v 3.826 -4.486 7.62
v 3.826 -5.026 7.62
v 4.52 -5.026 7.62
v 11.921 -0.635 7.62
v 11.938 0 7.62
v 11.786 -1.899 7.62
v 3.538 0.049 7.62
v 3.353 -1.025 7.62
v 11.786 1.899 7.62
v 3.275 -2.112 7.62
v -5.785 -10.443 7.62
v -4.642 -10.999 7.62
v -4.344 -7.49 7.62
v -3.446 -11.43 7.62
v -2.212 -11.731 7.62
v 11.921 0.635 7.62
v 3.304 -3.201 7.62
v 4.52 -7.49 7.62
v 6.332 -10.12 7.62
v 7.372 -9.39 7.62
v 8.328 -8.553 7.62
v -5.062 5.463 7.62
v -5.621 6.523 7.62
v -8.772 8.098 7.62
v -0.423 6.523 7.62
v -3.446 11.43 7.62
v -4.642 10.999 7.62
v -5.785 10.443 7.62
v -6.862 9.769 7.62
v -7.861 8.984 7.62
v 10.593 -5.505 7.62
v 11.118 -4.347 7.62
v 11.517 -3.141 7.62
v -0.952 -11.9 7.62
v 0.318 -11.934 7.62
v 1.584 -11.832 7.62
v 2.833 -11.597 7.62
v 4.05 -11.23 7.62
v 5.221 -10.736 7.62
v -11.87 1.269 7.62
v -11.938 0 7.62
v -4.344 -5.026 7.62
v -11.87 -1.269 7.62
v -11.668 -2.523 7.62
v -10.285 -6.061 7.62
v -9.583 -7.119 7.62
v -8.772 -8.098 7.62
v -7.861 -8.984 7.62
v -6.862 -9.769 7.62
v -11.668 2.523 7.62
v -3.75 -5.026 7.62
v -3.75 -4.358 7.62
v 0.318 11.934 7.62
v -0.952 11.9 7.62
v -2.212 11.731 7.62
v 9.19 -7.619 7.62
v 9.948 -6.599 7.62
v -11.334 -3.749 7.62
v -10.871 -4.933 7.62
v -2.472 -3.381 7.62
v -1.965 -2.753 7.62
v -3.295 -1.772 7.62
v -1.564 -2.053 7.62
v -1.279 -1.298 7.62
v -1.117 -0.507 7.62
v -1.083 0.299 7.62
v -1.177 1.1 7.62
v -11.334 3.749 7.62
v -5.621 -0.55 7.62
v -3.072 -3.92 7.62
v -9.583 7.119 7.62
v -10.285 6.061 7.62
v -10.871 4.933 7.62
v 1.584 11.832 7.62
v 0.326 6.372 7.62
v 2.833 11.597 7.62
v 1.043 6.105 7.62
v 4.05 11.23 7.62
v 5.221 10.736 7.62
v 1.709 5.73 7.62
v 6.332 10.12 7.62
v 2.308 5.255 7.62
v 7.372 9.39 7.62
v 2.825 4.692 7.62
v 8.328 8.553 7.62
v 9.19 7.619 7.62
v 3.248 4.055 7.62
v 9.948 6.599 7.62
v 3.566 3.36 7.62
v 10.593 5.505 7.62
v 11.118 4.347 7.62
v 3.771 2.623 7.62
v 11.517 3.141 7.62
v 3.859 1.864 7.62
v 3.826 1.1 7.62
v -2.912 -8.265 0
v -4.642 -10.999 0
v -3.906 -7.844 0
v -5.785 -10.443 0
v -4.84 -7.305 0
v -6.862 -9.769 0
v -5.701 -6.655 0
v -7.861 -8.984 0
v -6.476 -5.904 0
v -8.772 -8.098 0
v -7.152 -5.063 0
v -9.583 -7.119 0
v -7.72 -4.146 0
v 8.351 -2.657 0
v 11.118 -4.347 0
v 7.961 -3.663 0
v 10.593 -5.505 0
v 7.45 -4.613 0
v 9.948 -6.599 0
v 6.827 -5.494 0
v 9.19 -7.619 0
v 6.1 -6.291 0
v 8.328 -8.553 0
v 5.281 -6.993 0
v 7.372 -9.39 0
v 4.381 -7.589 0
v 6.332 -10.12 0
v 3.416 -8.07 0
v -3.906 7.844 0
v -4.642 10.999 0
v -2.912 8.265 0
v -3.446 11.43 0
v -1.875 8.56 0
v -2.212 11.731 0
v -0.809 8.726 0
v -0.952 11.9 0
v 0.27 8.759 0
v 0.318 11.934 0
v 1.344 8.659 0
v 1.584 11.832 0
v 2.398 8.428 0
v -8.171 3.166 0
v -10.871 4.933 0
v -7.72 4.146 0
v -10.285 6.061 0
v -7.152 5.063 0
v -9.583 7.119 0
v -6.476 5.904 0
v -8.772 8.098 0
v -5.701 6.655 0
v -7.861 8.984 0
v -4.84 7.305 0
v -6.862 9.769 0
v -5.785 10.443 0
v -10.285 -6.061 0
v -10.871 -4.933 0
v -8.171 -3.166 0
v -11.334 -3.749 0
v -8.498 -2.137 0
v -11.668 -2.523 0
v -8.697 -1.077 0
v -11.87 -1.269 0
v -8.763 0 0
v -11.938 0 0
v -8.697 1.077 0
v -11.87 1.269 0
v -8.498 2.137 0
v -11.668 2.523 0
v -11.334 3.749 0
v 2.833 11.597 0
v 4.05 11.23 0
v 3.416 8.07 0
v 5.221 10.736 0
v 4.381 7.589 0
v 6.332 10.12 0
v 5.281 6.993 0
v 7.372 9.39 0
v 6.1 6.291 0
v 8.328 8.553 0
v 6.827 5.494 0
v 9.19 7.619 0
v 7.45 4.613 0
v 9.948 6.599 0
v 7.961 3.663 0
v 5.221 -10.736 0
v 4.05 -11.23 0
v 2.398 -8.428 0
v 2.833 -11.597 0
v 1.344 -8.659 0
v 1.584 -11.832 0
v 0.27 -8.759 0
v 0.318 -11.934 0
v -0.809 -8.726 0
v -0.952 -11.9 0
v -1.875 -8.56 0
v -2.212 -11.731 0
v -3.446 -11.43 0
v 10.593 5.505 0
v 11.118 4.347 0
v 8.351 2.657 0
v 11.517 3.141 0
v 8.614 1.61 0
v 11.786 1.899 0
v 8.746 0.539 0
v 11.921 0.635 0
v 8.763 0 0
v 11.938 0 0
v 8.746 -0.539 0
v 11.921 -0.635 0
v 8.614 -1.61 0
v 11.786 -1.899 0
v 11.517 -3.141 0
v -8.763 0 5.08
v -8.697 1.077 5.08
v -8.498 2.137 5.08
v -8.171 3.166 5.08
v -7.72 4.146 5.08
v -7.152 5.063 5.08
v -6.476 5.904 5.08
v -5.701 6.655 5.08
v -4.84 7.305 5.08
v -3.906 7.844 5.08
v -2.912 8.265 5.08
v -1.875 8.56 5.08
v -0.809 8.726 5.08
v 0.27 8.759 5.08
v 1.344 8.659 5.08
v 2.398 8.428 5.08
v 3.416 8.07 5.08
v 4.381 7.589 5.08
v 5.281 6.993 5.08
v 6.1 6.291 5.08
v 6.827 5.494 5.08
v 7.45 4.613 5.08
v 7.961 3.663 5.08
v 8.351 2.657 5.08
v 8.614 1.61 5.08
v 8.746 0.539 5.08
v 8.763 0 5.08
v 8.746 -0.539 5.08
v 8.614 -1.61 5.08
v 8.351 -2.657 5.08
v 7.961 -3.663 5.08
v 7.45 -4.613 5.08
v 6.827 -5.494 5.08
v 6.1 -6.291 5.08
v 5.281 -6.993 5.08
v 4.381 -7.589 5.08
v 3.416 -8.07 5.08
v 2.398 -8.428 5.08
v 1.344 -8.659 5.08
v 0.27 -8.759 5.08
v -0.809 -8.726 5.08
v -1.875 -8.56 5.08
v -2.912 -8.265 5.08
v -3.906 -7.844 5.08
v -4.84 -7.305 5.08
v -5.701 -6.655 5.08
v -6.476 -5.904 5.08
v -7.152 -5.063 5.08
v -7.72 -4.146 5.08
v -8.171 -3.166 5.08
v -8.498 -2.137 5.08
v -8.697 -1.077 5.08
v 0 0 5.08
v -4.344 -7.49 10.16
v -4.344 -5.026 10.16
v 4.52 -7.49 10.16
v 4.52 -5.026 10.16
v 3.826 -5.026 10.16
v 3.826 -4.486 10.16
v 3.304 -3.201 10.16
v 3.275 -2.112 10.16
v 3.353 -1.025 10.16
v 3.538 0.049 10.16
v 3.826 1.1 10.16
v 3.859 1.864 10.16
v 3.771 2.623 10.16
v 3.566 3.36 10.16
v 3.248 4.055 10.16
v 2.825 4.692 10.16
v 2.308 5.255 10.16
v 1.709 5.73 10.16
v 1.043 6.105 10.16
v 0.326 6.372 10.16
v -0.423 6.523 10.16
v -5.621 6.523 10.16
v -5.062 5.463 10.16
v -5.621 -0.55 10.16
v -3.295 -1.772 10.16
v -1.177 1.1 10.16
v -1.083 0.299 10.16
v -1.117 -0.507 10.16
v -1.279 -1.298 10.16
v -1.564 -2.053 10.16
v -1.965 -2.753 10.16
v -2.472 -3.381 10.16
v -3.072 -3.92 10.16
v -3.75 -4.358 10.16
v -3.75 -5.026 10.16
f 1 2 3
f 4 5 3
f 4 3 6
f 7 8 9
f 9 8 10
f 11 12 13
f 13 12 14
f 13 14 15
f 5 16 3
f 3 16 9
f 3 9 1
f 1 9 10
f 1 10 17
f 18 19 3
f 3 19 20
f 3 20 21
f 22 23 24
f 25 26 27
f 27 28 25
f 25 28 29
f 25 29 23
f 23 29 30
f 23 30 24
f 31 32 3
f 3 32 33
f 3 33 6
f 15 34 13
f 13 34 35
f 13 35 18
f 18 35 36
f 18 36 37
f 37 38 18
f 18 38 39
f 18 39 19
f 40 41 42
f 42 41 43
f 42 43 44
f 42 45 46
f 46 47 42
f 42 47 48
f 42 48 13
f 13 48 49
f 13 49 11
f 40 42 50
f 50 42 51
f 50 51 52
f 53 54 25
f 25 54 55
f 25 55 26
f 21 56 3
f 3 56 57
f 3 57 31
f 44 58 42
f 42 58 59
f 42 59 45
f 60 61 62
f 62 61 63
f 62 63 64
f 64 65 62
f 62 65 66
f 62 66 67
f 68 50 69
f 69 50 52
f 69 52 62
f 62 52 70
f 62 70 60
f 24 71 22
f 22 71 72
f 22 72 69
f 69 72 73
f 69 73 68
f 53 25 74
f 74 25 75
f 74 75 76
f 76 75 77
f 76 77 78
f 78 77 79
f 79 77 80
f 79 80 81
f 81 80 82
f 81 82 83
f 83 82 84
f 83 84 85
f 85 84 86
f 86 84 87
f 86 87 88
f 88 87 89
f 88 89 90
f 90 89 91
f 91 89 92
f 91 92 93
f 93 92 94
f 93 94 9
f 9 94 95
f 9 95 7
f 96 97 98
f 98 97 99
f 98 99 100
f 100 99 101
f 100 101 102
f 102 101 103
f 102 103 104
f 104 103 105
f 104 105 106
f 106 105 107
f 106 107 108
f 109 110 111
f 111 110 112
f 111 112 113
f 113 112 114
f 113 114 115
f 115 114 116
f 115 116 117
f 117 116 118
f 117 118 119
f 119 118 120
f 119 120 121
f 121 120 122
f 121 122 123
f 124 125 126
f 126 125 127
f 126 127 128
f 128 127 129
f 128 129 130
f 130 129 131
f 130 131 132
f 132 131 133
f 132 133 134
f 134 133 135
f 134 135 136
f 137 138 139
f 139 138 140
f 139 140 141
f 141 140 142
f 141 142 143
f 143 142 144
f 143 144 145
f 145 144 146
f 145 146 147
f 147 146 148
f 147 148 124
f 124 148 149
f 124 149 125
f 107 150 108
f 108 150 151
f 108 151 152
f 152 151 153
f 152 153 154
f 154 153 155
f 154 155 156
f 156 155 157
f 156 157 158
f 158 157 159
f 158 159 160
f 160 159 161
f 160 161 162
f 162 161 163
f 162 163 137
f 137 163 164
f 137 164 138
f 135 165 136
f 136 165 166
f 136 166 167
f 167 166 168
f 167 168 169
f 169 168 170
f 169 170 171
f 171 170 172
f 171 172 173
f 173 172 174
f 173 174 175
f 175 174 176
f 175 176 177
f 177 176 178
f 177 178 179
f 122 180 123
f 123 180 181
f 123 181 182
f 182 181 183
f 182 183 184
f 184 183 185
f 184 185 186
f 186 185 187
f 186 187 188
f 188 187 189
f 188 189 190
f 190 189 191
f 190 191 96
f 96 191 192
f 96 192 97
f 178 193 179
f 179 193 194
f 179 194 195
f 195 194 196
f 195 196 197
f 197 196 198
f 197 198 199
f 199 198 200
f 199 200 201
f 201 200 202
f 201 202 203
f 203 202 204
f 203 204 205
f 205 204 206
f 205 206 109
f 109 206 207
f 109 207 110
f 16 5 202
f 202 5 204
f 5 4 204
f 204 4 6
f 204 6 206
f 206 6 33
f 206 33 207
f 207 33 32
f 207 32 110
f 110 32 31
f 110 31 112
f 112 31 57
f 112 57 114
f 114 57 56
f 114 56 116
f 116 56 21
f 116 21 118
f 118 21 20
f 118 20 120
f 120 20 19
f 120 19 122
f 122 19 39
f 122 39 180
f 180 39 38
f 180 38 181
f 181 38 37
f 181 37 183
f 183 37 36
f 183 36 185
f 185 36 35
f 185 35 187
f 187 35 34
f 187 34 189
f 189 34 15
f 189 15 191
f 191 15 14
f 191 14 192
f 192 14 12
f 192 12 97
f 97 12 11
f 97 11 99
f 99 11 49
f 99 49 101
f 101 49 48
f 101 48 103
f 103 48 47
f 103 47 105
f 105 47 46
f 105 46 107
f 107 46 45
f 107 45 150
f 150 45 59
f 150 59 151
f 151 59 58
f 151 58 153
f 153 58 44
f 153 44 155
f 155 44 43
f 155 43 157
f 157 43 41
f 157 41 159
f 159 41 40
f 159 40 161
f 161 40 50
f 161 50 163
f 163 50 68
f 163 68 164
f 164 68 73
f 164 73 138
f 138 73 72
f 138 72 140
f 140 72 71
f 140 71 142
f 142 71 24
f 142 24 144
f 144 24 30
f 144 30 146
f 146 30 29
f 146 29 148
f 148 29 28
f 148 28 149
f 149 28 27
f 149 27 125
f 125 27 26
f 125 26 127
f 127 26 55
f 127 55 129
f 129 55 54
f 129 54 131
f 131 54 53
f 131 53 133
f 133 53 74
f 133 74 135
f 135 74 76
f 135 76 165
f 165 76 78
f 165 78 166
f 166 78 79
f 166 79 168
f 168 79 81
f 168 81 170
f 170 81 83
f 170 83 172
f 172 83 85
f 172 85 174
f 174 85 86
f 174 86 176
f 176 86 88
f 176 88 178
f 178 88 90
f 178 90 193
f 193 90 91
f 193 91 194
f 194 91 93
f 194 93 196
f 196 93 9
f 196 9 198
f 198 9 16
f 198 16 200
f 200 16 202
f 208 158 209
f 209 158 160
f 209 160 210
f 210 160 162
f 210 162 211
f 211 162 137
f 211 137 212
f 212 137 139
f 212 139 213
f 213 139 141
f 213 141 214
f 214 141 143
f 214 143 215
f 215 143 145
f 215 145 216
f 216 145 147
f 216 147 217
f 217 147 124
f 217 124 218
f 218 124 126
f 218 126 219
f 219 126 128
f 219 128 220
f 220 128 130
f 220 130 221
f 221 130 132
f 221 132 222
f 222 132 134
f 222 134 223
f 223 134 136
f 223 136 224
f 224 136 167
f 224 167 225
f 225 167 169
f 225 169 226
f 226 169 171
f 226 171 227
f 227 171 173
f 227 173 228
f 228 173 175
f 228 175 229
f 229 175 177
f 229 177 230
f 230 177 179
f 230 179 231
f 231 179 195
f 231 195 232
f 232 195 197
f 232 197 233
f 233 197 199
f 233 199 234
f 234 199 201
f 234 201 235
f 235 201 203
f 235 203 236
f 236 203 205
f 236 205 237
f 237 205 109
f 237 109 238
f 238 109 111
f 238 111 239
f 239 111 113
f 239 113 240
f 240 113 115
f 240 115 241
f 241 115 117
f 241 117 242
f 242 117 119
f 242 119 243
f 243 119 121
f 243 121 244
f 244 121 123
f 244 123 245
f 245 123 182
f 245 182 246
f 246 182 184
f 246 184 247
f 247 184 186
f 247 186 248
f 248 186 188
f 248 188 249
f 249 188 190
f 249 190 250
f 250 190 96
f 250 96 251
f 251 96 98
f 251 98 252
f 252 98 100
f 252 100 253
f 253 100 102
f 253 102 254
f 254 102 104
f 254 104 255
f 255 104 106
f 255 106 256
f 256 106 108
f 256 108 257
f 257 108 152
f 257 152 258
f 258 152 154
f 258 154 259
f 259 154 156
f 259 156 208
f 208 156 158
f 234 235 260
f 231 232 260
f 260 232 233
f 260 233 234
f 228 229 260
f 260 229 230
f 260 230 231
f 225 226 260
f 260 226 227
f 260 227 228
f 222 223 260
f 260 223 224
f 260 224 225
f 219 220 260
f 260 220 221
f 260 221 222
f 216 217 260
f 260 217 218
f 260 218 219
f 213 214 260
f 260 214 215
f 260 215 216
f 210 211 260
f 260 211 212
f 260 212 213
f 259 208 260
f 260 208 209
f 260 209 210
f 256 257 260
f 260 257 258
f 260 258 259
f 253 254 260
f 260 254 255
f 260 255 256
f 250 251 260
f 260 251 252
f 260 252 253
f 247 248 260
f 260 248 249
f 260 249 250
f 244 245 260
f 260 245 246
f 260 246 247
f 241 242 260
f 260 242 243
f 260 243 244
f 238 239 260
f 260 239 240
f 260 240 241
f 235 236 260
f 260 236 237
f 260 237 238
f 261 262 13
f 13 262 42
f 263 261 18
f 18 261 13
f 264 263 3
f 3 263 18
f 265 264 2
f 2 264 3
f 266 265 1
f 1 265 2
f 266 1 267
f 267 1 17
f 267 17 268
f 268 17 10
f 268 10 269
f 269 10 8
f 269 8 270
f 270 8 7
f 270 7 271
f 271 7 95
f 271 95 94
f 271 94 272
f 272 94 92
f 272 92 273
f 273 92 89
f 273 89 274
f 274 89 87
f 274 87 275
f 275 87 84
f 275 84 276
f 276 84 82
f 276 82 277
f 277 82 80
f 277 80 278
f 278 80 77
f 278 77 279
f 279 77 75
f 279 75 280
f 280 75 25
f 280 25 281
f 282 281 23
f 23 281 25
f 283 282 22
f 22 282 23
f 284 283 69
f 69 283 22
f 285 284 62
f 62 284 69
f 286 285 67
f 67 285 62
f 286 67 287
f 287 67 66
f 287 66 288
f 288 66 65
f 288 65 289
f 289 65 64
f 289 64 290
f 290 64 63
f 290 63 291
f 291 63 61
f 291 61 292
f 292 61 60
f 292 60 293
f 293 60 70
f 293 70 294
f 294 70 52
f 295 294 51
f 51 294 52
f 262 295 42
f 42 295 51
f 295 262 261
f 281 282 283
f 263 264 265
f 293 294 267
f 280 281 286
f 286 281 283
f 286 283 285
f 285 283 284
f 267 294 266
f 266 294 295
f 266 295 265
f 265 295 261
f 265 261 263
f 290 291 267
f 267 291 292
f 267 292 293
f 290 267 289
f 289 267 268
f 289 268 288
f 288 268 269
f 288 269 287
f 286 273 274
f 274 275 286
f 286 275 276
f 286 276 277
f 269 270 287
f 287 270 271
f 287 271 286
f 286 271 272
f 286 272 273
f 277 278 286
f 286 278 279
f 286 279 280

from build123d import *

# Parameters (mm, degrees)
SKETCH1_R           = 11.938
SKETCH1_R_2         = 8.763
BOSS_EXTRUDE1_DEPTH = 5.08
SKETCH2_R           = 11.938
BOSS_EXTRUDE2_DEPTH = 2.54
BOSS_EXTRUDE5_DEPTH = 2.54


with BuildPart() as part:
    # Sketch1 → Boss-Extrude1 (new body)
    with BuildSketch(Plane.XY):
        Circle(SKETCH1_R)
        Circle(SKETCH1_R_2, mode=Mode.SUBTRACT)
    extrude(amount=BOSS_EXTRUDE1_DEPTH)

    # Sketch2 → Boss-Extrude2 (add)
    with BuildSketch(Plane.XY.offset(5.08)):
        Circle(SKETCH2_R)
    extrude(amount=BOSS_EXTRUDE2_DEPTH)

    # Sketch3 → Boss-Extrude5 (add)
    with BuildSketch(Plane.XY.offset(7.62)):
        with BuildLine():
            Line((-3.749775554, -5.025912703), (-3.749775554, -4.357730643))
            ThreePointArc((-3.749775554, -4.357730643), (-1.563899962, -2.052721882), (-1.176728716, 1.100247499))
            Line((-1.176728716, 1.100247499), (-3.294944042, -1.771688619))
            Line((-3.294944042, -1.771688619), (-5.621082346, -0.55014113))
            Line((-5.621082346, -0.55014113), (-5.062289346, 5.462731457))
            Line((-5.062289346, 5.462731457), (-5.621082346, 6.523138639))
            Line((-5.621082346, 6.523138639), (-0.422811908, 6.523138639))
            ThreePointArc((-0.422811908, 6.523138639), (2.824920532, 4.69173738), (3.826417915, 1.100247499))
            ThreePointArc((3.826417915, 1.100247499), (3.353249923, -1.024672289), (3.304473127, -3.20108973))
            ThreePointArc((3.304473127, -3.20108973), (3.557112423, -3.847120346), (3.826417915, -4.486382985))
            Line((3.826417915, -4.486382985), (3.826417915, -5.025912703))
            Line((3.826417915, -5.025912703), (4.519556937, -5.025912703))
            Line((4.519556937, -5.025912703), (4.519556937, -7.490281135))
            Line((4.519556937, -7.490281135), (-4.344219843, -7.490281135))
            Line((-4.344219843, -7.490281135), (-4.344219843, -5.025912703))
            Line((-4.344219843, -5.025912703), (-3.749775554, -5.025912703))
        make_face()
    extrude(amount=BOSS_EXTRUDE5_DEPTH)


solid = part.part
